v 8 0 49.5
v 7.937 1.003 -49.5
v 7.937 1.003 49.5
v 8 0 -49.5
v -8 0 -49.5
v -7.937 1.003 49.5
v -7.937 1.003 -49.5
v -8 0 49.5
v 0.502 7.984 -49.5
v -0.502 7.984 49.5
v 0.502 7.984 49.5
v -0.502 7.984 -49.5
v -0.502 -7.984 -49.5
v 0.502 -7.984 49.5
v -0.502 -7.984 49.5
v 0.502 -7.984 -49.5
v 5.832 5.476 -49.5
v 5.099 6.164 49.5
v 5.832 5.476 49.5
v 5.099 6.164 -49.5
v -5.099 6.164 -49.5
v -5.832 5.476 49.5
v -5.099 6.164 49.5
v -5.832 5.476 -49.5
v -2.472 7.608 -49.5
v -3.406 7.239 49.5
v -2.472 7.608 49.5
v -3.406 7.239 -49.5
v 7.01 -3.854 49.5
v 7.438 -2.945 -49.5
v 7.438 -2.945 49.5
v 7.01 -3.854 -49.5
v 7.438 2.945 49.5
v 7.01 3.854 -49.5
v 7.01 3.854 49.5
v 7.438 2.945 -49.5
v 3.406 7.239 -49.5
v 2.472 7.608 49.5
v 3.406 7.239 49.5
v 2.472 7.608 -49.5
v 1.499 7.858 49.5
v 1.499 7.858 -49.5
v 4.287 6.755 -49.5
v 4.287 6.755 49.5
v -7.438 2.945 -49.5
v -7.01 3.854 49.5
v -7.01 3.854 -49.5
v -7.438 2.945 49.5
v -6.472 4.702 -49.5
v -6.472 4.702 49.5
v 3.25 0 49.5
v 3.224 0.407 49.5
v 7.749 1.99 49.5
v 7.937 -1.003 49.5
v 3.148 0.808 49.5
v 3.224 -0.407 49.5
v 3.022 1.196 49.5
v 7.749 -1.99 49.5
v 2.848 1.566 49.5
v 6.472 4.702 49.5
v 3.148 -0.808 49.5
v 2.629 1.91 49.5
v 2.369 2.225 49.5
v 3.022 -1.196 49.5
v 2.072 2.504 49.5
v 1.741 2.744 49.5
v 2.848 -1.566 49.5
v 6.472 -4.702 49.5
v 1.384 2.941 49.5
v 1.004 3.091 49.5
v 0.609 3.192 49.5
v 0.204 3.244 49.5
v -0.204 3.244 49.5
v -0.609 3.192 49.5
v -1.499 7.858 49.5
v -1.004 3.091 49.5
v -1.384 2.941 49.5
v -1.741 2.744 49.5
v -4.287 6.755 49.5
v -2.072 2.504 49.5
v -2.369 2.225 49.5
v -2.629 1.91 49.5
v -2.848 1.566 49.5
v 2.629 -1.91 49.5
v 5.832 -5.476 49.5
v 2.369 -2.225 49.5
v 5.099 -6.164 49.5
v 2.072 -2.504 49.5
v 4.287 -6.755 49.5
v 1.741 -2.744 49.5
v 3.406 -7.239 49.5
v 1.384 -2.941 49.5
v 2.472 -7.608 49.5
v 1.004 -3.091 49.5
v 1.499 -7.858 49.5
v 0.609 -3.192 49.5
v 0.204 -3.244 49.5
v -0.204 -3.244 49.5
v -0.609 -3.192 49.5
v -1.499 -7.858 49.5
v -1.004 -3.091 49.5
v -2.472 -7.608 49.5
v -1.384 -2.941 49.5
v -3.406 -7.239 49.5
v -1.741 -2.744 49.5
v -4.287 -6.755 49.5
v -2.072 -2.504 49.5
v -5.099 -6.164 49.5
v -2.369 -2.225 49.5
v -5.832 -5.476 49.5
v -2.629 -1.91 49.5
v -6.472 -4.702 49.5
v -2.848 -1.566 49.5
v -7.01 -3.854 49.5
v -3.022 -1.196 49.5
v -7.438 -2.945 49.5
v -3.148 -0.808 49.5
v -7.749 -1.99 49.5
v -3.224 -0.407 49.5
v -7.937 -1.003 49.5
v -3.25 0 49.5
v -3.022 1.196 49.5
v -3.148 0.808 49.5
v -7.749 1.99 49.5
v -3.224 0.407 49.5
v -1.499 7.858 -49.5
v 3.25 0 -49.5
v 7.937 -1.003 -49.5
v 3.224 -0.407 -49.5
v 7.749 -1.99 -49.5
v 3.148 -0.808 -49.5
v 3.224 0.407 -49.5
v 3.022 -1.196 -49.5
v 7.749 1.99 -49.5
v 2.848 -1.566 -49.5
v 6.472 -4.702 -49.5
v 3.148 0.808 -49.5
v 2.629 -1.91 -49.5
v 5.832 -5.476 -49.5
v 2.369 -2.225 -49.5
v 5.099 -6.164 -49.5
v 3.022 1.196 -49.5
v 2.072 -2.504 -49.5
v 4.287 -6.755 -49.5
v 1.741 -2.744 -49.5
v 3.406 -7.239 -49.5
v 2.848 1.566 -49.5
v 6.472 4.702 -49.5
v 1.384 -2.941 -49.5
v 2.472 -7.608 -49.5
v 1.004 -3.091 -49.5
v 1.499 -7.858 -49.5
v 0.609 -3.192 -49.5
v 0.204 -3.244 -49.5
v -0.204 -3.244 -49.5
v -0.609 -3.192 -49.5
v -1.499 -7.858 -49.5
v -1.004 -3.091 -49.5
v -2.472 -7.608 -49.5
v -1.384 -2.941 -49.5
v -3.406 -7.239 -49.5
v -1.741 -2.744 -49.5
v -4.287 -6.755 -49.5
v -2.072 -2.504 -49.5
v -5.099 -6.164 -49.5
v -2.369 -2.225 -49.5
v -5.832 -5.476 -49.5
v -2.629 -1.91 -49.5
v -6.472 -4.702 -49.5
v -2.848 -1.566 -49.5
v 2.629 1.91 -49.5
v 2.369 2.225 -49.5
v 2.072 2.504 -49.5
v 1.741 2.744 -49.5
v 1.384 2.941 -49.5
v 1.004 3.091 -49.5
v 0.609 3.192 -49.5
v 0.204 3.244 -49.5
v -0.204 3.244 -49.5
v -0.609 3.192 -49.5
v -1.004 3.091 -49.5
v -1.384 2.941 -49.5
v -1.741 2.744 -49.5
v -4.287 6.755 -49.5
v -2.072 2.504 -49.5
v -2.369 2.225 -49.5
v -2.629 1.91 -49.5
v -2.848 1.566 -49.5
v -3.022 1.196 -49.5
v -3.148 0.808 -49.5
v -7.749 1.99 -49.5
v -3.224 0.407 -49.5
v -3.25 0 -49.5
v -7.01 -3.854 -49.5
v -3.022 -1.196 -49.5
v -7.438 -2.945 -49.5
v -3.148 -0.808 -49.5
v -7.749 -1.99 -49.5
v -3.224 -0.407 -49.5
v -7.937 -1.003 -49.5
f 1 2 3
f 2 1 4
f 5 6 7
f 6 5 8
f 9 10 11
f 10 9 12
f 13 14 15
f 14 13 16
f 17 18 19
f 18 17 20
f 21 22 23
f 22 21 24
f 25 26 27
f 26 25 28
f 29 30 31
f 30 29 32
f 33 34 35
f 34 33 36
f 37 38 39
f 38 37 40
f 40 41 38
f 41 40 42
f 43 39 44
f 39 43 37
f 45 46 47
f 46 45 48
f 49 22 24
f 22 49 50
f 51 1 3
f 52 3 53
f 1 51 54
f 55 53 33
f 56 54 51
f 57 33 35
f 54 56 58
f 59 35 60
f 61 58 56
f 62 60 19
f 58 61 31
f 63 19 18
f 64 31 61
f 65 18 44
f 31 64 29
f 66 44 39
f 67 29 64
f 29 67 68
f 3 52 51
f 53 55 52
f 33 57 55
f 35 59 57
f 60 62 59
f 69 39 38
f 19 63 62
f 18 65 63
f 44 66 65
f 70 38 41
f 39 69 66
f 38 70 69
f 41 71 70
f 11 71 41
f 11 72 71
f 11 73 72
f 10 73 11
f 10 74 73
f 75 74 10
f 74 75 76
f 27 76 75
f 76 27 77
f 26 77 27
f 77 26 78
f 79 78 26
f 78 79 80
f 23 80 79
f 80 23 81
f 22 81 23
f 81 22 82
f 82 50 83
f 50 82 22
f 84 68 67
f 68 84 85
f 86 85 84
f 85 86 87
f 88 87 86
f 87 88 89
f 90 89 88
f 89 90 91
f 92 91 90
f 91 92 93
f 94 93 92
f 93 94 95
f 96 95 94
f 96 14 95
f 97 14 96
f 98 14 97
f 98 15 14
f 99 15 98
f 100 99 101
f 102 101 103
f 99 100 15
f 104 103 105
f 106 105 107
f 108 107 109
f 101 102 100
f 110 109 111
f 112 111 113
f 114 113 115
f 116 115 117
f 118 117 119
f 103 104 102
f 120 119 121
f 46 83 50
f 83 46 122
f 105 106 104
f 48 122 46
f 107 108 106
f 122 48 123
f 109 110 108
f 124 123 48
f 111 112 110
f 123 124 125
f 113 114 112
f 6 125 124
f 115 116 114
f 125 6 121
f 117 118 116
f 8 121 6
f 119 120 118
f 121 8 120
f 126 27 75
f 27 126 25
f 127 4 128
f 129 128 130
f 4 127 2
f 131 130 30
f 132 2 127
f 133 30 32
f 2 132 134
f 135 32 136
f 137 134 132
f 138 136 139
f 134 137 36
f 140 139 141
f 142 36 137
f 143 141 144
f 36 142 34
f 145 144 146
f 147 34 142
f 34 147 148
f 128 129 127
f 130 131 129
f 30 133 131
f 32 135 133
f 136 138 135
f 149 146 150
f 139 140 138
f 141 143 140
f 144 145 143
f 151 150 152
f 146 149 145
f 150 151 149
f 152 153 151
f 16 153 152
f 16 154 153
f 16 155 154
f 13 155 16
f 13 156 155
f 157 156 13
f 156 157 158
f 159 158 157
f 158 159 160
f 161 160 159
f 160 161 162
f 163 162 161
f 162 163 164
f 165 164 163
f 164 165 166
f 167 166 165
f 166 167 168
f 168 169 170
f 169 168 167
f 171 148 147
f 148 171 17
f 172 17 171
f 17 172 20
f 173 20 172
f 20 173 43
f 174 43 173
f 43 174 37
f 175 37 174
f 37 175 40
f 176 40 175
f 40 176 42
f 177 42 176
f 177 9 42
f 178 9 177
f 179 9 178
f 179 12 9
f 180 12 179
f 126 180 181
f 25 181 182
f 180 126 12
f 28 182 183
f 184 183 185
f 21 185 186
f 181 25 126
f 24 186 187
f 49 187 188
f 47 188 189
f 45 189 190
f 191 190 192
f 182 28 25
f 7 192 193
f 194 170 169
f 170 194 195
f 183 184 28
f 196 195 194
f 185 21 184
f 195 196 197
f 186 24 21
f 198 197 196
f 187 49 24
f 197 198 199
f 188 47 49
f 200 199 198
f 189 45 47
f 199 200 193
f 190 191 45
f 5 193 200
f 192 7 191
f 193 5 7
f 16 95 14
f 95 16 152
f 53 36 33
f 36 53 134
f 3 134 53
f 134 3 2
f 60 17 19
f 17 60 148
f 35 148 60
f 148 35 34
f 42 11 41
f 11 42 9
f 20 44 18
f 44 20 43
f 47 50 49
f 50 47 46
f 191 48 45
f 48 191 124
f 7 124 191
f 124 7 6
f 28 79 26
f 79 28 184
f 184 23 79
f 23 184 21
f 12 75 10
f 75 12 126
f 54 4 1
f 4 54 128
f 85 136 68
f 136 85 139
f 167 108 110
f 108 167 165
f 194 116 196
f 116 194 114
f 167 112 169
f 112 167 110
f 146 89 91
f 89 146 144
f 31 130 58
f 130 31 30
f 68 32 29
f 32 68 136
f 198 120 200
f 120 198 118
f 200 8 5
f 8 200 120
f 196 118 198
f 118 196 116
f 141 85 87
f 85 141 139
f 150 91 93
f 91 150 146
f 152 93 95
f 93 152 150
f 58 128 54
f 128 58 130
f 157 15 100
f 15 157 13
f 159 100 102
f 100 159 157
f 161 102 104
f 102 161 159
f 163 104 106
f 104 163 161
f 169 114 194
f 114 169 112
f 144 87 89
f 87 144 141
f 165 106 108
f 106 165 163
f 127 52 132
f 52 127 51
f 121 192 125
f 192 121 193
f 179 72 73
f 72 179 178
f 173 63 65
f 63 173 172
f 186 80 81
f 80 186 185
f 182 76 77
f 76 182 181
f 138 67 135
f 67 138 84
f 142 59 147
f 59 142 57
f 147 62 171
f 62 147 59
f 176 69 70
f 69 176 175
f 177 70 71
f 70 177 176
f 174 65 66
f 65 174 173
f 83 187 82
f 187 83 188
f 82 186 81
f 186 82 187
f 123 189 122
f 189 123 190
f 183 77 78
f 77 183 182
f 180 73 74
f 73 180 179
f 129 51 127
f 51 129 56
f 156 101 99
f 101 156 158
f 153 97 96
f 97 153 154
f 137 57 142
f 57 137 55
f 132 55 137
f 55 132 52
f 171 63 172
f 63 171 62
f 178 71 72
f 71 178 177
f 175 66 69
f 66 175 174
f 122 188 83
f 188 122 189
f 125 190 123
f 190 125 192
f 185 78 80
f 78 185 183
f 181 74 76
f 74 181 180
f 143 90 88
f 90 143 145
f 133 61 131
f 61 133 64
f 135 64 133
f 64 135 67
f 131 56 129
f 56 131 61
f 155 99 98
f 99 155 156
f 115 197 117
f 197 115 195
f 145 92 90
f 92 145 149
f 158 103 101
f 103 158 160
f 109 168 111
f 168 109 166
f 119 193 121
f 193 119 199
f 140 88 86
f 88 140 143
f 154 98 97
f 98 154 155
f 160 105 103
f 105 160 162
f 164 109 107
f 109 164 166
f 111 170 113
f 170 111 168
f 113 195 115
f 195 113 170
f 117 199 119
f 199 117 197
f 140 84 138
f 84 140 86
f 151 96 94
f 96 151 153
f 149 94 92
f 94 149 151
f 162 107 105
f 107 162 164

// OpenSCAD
$fn = 50;


difference() {
	union() {
		translate(v = [0, 0, -49.5000000000]) {
			cylinder(h = 99, r = 8.0000000000);
		}
	}
	union() {
		translate(v = [0, 0, -100.0000000000]) {
			cylinder(h = 200, r = 3.2500000000);
		}
	}
}
